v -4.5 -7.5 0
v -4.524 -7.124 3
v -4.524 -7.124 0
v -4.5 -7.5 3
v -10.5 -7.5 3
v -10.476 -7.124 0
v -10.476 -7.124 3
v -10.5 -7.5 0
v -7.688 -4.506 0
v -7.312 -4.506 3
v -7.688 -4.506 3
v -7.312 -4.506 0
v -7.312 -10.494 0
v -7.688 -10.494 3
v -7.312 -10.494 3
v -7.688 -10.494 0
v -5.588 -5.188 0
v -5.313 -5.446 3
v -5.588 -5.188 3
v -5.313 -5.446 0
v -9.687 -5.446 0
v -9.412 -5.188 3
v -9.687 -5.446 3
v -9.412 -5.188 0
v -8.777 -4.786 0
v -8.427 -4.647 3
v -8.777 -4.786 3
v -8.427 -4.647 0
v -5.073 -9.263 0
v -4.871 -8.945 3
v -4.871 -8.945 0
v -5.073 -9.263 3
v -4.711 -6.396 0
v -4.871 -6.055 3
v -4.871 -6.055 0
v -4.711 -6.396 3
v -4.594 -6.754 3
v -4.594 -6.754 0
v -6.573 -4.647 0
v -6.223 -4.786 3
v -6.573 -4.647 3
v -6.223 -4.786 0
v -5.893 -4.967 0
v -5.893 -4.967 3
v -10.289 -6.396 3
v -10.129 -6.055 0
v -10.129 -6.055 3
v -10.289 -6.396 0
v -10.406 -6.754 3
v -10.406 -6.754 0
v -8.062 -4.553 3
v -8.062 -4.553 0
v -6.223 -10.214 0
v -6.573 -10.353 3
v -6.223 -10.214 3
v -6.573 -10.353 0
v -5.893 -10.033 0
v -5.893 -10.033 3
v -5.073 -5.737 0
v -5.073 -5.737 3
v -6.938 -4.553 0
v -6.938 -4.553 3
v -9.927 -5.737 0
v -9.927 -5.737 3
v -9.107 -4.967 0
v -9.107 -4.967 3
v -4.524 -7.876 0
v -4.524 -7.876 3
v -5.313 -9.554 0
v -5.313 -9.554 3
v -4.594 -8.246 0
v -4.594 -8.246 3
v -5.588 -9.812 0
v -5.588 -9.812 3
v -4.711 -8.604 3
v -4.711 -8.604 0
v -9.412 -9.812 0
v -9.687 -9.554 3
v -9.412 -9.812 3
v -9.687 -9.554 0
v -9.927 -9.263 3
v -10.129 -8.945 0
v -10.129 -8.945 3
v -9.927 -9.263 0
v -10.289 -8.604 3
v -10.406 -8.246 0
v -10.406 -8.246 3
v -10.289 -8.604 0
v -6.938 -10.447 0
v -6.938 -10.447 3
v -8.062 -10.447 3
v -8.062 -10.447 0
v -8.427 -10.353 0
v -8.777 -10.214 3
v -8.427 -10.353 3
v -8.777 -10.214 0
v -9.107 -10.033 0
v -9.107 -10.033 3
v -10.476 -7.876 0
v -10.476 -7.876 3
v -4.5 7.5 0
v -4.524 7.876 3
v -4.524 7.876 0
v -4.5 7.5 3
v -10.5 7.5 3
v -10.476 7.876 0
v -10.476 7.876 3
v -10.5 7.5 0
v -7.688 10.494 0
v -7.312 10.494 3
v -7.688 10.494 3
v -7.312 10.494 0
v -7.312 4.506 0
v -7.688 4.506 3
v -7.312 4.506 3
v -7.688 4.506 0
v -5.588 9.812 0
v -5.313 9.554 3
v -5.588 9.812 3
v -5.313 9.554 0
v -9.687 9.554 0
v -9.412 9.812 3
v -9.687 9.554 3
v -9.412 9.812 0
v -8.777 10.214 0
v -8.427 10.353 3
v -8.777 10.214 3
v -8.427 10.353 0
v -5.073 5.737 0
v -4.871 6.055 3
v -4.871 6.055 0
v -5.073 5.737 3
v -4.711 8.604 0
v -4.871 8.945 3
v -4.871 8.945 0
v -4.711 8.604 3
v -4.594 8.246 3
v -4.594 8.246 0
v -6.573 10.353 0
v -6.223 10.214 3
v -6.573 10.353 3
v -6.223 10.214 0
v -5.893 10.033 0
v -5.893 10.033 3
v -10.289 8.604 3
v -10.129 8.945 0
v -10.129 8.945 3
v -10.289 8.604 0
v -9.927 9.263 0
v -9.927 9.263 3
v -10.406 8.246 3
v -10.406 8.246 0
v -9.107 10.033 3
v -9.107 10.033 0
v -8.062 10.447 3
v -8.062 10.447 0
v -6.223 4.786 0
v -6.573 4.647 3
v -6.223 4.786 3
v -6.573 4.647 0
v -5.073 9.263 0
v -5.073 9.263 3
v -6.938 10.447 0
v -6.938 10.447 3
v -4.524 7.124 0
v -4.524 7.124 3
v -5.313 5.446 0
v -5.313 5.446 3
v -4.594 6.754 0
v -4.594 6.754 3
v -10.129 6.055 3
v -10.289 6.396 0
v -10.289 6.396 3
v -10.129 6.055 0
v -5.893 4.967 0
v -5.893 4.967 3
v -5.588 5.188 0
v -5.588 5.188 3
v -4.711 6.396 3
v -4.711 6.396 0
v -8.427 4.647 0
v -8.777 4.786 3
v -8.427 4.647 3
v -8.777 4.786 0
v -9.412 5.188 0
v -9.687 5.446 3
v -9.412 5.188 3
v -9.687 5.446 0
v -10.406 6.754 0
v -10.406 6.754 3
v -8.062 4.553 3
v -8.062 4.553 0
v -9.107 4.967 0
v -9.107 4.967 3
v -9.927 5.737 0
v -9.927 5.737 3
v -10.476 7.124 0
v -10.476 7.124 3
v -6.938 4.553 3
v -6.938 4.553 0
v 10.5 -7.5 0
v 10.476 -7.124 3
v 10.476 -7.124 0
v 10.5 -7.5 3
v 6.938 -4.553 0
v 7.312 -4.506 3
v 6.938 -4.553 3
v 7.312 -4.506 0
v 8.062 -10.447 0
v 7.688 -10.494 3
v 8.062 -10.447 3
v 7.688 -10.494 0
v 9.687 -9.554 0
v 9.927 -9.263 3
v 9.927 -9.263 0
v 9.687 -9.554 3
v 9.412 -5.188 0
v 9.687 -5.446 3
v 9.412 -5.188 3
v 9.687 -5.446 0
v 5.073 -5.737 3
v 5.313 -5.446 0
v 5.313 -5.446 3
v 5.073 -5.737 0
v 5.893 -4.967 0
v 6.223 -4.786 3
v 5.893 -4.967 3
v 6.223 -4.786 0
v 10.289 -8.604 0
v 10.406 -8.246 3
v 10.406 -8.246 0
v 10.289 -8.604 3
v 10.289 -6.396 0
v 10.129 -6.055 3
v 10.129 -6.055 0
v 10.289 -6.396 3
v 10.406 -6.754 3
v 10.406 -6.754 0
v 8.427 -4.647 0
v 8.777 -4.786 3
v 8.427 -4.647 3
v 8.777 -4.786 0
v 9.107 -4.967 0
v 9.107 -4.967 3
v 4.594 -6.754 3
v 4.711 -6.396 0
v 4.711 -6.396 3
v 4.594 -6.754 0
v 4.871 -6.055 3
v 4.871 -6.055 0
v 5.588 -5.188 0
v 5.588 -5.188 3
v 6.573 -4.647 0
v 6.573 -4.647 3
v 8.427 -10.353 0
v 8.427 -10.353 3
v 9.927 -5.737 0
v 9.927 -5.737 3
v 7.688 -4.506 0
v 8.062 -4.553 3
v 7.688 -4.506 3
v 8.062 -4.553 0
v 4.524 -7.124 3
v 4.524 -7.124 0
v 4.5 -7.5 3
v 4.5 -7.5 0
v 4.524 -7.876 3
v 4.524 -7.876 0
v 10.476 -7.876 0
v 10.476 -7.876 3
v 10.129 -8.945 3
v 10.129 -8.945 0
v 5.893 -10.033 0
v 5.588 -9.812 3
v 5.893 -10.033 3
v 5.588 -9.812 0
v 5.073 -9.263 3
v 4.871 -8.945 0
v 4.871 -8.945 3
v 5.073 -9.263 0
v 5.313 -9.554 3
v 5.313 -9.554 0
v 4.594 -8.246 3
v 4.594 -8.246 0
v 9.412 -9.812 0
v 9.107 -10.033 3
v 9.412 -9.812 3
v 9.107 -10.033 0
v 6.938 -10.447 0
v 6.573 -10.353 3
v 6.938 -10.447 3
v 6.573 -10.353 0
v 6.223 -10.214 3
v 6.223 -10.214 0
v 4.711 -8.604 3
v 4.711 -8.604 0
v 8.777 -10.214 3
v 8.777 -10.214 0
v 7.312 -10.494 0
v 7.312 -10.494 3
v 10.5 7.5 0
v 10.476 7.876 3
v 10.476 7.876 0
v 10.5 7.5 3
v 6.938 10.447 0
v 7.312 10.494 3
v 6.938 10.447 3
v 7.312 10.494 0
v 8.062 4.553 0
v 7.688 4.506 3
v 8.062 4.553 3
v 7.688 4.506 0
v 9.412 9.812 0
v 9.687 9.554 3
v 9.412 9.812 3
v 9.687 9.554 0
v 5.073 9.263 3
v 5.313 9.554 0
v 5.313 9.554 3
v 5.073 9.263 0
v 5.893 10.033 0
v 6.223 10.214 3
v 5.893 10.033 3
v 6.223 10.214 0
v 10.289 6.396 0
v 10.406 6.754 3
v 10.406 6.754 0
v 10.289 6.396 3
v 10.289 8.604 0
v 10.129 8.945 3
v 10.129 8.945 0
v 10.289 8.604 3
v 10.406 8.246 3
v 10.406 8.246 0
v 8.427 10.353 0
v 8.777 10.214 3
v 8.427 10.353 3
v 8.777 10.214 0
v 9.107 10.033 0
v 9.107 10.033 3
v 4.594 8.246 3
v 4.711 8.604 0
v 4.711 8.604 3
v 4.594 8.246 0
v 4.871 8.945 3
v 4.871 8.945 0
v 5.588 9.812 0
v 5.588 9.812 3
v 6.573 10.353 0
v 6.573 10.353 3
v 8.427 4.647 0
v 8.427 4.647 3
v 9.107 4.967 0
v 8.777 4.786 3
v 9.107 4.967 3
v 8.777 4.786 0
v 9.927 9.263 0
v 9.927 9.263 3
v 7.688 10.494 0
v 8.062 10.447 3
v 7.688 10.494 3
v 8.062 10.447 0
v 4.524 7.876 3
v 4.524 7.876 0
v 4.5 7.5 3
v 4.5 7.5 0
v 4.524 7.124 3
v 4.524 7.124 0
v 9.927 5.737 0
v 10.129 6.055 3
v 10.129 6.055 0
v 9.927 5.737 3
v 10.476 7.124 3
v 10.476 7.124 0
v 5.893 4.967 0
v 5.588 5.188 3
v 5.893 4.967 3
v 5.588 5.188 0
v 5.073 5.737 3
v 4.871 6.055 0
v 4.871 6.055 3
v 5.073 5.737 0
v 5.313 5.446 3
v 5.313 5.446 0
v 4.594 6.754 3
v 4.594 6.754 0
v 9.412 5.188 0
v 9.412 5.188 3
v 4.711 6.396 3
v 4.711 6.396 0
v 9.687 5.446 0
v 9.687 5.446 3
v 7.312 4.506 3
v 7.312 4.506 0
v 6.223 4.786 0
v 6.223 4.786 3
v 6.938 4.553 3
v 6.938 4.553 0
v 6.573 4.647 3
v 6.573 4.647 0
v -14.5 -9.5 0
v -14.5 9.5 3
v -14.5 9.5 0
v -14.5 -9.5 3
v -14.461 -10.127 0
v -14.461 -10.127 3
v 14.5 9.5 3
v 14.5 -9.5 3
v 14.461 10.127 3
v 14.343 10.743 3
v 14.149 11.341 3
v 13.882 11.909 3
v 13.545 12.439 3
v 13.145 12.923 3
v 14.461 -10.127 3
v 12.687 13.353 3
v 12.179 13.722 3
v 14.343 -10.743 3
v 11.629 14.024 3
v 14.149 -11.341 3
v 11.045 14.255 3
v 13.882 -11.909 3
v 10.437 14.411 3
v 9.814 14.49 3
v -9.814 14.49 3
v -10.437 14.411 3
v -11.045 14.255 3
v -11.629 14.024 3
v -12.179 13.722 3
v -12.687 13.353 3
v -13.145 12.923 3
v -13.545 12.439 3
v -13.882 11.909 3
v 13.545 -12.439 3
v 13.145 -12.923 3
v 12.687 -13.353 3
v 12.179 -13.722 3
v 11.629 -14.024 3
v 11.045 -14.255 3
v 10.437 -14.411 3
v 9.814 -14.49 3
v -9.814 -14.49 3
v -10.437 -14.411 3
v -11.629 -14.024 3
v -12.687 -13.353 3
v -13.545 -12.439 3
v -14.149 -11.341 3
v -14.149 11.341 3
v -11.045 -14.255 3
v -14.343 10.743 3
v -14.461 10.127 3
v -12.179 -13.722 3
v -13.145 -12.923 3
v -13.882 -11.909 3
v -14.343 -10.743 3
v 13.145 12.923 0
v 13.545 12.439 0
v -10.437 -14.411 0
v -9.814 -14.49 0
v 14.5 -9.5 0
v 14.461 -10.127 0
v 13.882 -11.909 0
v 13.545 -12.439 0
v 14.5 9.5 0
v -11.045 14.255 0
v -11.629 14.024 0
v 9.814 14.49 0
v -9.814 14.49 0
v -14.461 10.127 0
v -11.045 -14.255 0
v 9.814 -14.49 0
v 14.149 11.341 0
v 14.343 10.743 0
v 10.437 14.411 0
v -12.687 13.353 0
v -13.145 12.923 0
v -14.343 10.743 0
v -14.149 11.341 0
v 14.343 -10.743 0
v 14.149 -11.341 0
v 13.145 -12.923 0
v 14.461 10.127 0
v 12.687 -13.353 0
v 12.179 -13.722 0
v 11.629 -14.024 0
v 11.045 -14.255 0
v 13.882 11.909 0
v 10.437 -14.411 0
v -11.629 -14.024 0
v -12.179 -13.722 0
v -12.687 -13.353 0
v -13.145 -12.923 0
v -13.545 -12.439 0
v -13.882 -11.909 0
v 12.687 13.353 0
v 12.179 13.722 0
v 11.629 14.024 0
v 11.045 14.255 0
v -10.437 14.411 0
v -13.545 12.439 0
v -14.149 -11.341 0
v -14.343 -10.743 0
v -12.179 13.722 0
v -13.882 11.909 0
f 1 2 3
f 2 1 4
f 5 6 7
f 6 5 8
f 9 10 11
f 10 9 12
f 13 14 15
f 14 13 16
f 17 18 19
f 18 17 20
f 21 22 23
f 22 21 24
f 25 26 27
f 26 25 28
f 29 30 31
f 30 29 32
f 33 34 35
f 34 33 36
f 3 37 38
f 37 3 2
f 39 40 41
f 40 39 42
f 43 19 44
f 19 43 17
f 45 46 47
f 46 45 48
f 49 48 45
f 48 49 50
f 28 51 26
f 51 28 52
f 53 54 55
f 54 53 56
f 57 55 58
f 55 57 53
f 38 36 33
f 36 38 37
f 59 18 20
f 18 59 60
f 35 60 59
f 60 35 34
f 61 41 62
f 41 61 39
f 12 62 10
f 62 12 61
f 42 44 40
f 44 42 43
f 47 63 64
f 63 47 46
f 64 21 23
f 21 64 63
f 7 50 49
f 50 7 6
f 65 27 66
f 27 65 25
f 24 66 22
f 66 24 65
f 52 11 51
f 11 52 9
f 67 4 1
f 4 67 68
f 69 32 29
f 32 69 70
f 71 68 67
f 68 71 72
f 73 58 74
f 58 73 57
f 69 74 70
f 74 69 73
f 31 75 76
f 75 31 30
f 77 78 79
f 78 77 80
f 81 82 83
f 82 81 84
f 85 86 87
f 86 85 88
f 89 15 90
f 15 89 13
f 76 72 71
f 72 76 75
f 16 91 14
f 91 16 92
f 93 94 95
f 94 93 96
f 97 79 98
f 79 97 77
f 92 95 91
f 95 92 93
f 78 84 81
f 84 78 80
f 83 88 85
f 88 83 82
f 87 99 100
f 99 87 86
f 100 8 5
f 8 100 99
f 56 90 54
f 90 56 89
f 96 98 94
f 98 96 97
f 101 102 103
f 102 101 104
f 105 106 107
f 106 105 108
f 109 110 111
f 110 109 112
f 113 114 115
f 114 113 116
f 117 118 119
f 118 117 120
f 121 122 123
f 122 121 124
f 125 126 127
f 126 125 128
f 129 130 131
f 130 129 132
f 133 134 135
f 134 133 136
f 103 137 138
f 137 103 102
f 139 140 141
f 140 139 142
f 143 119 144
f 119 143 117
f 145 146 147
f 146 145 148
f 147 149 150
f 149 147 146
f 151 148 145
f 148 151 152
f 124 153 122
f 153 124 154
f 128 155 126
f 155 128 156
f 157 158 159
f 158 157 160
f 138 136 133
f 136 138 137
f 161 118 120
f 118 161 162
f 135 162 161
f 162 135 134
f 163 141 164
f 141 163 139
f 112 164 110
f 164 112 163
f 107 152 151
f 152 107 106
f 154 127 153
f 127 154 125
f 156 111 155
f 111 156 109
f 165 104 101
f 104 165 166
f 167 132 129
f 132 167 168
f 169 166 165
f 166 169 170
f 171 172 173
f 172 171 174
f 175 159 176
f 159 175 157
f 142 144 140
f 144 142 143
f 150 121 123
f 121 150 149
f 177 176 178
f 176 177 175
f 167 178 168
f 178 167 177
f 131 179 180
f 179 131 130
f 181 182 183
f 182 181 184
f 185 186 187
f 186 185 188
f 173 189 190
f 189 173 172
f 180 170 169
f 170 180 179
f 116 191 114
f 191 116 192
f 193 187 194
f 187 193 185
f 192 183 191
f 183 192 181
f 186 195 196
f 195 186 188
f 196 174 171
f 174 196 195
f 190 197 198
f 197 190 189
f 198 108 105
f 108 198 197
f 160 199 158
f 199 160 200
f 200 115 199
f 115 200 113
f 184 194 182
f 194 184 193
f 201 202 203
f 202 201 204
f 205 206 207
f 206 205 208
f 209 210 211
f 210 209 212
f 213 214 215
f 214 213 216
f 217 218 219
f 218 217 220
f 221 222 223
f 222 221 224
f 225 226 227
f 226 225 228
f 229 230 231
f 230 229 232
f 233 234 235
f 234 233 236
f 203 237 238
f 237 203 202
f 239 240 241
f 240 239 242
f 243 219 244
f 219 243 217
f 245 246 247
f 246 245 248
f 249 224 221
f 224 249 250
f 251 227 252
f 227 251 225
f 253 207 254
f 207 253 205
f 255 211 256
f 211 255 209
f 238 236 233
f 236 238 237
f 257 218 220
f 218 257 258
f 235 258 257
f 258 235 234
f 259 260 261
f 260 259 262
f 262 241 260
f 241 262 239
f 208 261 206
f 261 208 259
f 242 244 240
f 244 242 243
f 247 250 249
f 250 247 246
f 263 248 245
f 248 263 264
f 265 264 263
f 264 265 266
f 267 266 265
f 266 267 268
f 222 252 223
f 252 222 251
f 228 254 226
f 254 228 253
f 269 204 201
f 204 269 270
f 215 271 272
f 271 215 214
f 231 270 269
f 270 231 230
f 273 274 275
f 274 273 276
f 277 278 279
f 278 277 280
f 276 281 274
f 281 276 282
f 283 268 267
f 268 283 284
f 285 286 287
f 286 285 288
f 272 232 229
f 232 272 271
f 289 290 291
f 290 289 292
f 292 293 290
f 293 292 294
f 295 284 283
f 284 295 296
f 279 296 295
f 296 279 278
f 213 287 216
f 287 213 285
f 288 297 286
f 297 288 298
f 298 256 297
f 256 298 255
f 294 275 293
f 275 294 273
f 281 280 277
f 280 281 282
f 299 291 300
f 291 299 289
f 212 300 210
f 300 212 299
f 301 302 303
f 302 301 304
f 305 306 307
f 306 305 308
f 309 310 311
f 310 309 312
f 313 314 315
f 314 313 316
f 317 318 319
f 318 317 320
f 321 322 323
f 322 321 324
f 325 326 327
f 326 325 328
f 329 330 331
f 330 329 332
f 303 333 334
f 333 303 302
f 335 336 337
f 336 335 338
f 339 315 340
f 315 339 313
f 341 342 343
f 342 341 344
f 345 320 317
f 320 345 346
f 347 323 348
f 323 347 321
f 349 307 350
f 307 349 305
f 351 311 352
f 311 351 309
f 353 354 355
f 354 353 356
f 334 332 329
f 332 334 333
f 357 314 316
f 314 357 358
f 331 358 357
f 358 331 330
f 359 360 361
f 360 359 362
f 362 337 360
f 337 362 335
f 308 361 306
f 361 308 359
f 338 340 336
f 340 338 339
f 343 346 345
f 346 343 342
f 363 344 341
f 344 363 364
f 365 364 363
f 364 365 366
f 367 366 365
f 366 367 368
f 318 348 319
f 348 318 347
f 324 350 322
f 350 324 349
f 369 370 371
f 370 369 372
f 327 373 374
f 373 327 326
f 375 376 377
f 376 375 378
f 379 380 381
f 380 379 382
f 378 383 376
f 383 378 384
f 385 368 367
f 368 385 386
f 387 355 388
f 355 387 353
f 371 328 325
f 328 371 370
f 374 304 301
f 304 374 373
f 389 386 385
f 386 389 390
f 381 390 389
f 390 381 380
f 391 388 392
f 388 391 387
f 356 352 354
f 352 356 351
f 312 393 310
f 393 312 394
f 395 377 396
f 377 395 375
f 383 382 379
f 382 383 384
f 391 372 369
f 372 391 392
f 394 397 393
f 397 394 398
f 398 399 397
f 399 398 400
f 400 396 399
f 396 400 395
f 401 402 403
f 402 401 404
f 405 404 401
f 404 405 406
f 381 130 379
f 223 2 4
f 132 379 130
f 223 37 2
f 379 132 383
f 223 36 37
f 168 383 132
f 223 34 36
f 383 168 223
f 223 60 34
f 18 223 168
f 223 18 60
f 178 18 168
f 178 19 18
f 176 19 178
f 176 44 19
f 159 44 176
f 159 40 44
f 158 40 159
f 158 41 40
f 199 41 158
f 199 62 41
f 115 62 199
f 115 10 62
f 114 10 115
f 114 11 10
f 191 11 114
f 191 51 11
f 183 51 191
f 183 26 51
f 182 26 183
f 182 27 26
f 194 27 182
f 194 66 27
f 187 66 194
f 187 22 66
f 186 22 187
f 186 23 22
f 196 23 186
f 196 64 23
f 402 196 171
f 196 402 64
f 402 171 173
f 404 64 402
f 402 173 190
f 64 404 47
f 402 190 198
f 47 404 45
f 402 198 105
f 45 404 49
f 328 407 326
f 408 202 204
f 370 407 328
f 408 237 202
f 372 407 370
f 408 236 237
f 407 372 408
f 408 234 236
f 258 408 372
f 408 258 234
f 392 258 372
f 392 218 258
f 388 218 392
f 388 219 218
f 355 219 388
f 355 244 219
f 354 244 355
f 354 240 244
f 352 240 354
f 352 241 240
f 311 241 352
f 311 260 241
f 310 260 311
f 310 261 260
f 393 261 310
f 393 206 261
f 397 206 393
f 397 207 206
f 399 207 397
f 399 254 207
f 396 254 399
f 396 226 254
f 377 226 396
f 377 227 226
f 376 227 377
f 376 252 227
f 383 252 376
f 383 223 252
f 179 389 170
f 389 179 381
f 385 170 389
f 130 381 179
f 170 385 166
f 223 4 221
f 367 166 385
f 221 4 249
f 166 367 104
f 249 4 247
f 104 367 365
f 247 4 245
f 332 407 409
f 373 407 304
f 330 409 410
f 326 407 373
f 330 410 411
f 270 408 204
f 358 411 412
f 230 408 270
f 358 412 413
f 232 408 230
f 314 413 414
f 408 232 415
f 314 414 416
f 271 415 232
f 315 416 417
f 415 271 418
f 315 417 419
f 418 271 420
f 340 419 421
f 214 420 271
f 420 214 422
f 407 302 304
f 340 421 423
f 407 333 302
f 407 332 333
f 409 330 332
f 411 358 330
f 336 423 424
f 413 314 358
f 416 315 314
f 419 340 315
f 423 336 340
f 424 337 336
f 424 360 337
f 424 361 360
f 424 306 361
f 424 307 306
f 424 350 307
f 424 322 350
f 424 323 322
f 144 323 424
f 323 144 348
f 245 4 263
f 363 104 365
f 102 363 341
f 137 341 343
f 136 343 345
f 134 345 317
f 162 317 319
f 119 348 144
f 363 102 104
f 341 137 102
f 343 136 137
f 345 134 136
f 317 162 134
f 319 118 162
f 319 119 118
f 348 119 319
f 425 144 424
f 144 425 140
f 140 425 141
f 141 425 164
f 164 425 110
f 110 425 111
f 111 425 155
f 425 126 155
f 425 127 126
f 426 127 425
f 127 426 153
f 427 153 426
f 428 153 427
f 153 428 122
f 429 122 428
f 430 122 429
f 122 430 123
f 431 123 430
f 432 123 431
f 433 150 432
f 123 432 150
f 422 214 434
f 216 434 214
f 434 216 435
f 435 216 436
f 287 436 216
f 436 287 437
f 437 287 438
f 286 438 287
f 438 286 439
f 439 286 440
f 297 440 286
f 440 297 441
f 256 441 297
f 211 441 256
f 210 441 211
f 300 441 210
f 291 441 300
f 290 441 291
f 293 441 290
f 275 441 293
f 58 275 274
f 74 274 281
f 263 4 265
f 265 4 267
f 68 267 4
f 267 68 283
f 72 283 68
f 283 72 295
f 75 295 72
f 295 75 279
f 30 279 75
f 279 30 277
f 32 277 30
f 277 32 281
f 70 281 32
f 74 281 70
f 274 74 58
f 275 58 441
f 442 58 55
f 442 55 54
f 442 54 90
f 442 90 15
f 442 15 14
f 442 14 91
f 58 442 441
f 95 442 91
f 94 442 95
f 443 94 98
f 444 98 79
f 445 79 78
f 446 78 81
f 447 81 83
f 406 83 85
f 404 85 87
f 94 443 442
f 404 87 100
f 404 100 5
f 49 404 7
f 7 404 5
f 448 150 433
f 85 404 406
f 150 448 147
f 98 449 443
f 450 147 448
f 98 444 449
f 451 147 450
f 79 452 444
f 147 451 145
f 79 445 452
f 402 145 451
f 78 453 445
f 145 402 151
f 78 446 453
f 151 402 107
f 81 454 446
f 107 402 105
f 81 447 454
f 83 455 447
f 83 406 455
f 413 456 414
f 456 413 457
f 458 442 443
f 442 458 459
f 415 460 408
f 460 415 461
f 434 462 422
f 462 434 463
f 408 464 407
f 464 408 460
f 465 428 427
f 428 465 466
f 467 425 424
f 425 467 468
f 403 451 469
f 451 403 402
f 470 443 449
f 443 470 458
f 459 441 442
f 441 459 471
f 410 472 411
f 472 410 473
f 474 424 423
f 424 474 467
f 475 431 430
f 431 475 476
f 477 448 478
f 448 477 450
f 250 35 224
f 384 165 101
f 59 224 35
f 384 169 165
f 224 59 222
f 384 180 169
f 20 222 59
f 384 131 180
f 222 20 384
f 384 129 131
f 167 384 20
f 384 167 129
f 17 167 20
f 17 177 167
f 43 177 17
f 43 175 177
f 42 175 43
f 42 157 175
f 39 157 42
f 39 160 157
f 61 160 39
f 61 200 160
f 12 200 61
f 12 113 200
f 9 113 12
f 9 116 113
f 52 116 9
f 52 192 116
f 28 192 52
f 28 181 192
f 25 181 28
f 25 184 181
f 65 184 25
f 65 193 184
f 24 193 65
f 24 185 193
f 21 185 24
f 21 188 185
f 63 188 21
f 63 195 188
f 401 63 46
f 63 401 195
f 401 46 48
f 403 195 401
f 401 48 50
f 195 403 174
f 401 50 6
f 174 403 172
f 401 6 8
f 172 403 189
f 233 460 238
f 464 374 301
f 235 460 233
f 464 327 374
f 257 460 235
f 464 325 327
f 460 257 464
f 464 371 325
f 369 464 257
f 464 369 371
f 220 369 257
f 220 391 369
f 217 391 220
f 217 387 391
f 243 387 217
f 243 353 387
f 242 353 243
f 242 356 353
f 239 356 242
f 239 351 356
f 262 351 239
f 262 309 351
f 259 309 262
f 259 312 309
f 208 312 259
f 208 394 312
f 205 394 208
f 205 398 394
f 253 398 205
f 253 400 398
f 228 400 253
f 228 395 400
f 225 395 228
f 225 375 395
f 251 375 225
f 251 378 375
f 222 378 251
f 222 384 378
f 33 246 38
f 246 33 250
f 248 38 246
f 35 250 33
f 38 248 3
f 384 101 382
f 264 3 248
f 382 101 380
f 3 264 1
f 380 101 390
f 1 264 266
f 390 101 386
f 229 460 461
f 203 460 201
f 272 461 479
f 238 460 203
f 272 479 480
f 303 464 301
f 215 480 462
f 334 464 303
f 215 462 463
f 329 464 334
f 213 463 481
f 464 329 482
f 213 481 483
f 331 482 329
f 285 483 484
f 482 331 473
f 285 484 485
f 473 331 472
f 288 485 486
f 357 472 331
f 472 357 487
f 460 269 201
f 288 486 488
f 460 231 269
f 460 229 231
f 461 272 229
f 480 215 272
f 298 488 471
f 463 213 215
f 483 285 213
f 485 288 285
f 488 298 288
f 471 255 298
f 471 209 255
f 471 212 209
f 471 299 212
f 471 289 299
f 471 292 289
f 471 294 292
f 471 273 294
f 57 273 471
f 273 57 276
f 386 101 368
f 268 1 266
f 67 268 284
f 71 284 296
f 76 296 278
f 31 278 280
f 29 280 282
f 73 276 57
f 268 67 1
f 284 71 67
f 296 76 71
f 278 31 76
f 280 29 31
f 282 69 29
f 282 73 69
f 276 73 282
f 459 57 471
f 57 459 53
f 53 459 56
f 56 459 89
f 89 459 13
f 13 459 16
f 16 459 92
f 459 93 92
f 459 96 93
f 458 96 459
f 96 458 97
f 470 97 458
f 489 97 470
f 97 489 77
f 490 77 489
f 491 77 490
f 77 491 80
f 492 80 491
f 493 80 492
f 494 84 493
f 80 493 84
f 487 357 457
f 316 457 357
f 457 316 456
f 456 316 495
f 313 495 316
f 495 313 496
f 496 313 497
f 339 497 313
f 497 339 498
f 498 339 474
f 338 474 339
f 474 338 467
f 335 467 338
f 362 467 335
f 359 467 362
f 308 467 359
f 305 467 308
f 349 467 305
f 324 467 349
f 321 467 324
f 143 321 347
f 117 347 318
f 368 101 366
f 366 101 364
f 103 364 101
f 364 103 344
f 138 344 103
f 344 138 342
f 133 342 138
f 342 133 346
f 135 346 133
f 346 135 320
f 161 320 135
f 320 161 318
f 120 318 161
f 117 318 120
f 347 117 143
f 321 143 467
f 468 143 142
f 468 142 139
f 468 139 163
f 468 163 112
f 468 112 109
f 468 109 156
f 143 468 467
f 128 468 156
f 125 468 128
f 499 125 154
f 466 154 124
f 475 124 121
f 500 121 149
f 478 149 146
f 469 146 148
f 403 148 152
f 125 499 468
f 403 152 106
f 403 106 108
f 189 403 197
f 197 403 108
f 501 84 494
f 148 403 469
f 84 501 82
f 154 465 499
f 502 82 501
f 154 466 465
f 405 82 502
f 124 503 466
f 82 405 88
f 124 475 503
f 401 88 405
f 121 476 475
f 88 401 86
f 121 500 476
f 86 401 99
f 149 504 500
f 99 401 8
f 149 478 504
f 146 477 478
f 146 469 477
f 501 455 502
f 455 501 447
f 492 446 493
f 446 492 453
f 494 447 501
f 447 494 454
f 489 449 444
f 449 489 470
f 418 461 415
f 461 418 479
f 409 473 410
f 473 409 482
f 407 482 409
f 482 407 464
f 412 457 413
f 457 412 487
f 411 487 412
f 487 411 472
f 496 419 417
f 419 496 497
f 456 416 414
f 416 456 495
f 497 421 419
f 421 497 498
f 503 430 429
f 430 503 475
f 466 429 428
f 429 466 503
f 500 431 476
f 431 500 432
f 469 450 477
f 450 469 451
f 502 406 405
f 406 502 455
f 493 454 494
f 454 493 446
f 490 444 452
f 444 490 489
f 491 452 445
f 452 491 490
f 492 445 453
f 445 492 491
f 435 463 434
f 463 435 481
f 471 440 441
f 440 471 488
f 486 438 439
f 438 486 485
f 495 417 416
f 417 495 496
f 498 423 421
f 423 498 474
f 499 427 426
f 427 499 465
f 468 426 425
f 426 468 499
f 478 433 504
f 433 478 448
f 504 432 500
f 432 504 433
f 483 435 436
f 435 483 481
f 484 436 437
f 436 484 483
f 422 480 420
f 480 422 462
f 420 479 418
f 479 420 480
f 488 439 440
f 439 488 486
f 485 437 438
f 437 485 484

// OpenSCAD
$fn = 50;


difference() {
	union() {
		translate(v = [0, 0, 0]) {
			rotate(a = [0, 0, 0]) {
				hull() {
					translate(v = [-9.5000000000, 9.5000000000, 0]) {
						rotate(a = [0, 0, 0]) {
							translate(v = [0, 0, 0]) {
								rotate(a = [0, 0, 0]) {
									cylinder(h = 3, r = 5);
								}
							}
						}
					}
					translate(v = [9.5000000000, 9.5000000000, 0]) {
						rotate(a = [0, 0, 0]) {
							translate(v = [0, 0, 0]) {
								rotate(a = [0, 0, 0]) {
									cylinder(h = 3, r = 5);
								}
							}
						}
					}
					translate(v = [-9.5000000000, -9.5000000000, 0]) {
						rotate(a = [0, 0, 0]) {
							translate(v = [0, 0, 0]) {
								rotate(a = [0, 0, 0]) {
									cylinder(h = 3, r = 5);
								}
							}
						}
					}
					translate(v = [9.5000000000, -9.5000000000, 0]) {
						rotate(a = [0, 0, 0]) {
							translate(v = [0, 0, 0]) {
								rotate(a = [0, 0, 0]) {
									cylinder(h = 3, r = 5);
								}
							}
						}
					}
				}
			}
		}
	}
	union() {
		translate(v = [-7.5000000000, -7.5000000000, 0]) {
			rotate(a = [0, 0, 0]) {
				translate(v = [0, 0, -50]) {
					rotate(a = [0, 0, 0]) {
						cylinder(h = 100, r = 3.0000000000);
					}
				}
			}
		}
		translate(v = [-7.5000000000, 7.5000000000, 0]) {
			rotate(a = [0, 0, 0]) {
				translate(v = [0, 0, -50]) {
					rotate(a = [0, 0, 0]) {
						cylinder(h = 100, r = 3.0000000000);
					}
				}
			}
		}
		translate(v = [7.5000000000, -7.5000000000, 0]) {
			rotate(a = [0, 0, 0]) {
				translate(v = [0, 0, -50]) {
					rotate(a = [0, 0, 0]) {
						cylinder(h = 100, r = 3.0000000000);
					}
				}
			}
		}
		translate(v = [7.5000000000, 7.5000000000, 0]) {
			rotate(a = [0, 0, 0]) {
				translate(v = [0, 0, -50]) {
					rotate(a = [0, 0, 0]) {
						cylinder(h = 100, r = 3.0000000000);
					}
				}
			}
		}
	}
}
